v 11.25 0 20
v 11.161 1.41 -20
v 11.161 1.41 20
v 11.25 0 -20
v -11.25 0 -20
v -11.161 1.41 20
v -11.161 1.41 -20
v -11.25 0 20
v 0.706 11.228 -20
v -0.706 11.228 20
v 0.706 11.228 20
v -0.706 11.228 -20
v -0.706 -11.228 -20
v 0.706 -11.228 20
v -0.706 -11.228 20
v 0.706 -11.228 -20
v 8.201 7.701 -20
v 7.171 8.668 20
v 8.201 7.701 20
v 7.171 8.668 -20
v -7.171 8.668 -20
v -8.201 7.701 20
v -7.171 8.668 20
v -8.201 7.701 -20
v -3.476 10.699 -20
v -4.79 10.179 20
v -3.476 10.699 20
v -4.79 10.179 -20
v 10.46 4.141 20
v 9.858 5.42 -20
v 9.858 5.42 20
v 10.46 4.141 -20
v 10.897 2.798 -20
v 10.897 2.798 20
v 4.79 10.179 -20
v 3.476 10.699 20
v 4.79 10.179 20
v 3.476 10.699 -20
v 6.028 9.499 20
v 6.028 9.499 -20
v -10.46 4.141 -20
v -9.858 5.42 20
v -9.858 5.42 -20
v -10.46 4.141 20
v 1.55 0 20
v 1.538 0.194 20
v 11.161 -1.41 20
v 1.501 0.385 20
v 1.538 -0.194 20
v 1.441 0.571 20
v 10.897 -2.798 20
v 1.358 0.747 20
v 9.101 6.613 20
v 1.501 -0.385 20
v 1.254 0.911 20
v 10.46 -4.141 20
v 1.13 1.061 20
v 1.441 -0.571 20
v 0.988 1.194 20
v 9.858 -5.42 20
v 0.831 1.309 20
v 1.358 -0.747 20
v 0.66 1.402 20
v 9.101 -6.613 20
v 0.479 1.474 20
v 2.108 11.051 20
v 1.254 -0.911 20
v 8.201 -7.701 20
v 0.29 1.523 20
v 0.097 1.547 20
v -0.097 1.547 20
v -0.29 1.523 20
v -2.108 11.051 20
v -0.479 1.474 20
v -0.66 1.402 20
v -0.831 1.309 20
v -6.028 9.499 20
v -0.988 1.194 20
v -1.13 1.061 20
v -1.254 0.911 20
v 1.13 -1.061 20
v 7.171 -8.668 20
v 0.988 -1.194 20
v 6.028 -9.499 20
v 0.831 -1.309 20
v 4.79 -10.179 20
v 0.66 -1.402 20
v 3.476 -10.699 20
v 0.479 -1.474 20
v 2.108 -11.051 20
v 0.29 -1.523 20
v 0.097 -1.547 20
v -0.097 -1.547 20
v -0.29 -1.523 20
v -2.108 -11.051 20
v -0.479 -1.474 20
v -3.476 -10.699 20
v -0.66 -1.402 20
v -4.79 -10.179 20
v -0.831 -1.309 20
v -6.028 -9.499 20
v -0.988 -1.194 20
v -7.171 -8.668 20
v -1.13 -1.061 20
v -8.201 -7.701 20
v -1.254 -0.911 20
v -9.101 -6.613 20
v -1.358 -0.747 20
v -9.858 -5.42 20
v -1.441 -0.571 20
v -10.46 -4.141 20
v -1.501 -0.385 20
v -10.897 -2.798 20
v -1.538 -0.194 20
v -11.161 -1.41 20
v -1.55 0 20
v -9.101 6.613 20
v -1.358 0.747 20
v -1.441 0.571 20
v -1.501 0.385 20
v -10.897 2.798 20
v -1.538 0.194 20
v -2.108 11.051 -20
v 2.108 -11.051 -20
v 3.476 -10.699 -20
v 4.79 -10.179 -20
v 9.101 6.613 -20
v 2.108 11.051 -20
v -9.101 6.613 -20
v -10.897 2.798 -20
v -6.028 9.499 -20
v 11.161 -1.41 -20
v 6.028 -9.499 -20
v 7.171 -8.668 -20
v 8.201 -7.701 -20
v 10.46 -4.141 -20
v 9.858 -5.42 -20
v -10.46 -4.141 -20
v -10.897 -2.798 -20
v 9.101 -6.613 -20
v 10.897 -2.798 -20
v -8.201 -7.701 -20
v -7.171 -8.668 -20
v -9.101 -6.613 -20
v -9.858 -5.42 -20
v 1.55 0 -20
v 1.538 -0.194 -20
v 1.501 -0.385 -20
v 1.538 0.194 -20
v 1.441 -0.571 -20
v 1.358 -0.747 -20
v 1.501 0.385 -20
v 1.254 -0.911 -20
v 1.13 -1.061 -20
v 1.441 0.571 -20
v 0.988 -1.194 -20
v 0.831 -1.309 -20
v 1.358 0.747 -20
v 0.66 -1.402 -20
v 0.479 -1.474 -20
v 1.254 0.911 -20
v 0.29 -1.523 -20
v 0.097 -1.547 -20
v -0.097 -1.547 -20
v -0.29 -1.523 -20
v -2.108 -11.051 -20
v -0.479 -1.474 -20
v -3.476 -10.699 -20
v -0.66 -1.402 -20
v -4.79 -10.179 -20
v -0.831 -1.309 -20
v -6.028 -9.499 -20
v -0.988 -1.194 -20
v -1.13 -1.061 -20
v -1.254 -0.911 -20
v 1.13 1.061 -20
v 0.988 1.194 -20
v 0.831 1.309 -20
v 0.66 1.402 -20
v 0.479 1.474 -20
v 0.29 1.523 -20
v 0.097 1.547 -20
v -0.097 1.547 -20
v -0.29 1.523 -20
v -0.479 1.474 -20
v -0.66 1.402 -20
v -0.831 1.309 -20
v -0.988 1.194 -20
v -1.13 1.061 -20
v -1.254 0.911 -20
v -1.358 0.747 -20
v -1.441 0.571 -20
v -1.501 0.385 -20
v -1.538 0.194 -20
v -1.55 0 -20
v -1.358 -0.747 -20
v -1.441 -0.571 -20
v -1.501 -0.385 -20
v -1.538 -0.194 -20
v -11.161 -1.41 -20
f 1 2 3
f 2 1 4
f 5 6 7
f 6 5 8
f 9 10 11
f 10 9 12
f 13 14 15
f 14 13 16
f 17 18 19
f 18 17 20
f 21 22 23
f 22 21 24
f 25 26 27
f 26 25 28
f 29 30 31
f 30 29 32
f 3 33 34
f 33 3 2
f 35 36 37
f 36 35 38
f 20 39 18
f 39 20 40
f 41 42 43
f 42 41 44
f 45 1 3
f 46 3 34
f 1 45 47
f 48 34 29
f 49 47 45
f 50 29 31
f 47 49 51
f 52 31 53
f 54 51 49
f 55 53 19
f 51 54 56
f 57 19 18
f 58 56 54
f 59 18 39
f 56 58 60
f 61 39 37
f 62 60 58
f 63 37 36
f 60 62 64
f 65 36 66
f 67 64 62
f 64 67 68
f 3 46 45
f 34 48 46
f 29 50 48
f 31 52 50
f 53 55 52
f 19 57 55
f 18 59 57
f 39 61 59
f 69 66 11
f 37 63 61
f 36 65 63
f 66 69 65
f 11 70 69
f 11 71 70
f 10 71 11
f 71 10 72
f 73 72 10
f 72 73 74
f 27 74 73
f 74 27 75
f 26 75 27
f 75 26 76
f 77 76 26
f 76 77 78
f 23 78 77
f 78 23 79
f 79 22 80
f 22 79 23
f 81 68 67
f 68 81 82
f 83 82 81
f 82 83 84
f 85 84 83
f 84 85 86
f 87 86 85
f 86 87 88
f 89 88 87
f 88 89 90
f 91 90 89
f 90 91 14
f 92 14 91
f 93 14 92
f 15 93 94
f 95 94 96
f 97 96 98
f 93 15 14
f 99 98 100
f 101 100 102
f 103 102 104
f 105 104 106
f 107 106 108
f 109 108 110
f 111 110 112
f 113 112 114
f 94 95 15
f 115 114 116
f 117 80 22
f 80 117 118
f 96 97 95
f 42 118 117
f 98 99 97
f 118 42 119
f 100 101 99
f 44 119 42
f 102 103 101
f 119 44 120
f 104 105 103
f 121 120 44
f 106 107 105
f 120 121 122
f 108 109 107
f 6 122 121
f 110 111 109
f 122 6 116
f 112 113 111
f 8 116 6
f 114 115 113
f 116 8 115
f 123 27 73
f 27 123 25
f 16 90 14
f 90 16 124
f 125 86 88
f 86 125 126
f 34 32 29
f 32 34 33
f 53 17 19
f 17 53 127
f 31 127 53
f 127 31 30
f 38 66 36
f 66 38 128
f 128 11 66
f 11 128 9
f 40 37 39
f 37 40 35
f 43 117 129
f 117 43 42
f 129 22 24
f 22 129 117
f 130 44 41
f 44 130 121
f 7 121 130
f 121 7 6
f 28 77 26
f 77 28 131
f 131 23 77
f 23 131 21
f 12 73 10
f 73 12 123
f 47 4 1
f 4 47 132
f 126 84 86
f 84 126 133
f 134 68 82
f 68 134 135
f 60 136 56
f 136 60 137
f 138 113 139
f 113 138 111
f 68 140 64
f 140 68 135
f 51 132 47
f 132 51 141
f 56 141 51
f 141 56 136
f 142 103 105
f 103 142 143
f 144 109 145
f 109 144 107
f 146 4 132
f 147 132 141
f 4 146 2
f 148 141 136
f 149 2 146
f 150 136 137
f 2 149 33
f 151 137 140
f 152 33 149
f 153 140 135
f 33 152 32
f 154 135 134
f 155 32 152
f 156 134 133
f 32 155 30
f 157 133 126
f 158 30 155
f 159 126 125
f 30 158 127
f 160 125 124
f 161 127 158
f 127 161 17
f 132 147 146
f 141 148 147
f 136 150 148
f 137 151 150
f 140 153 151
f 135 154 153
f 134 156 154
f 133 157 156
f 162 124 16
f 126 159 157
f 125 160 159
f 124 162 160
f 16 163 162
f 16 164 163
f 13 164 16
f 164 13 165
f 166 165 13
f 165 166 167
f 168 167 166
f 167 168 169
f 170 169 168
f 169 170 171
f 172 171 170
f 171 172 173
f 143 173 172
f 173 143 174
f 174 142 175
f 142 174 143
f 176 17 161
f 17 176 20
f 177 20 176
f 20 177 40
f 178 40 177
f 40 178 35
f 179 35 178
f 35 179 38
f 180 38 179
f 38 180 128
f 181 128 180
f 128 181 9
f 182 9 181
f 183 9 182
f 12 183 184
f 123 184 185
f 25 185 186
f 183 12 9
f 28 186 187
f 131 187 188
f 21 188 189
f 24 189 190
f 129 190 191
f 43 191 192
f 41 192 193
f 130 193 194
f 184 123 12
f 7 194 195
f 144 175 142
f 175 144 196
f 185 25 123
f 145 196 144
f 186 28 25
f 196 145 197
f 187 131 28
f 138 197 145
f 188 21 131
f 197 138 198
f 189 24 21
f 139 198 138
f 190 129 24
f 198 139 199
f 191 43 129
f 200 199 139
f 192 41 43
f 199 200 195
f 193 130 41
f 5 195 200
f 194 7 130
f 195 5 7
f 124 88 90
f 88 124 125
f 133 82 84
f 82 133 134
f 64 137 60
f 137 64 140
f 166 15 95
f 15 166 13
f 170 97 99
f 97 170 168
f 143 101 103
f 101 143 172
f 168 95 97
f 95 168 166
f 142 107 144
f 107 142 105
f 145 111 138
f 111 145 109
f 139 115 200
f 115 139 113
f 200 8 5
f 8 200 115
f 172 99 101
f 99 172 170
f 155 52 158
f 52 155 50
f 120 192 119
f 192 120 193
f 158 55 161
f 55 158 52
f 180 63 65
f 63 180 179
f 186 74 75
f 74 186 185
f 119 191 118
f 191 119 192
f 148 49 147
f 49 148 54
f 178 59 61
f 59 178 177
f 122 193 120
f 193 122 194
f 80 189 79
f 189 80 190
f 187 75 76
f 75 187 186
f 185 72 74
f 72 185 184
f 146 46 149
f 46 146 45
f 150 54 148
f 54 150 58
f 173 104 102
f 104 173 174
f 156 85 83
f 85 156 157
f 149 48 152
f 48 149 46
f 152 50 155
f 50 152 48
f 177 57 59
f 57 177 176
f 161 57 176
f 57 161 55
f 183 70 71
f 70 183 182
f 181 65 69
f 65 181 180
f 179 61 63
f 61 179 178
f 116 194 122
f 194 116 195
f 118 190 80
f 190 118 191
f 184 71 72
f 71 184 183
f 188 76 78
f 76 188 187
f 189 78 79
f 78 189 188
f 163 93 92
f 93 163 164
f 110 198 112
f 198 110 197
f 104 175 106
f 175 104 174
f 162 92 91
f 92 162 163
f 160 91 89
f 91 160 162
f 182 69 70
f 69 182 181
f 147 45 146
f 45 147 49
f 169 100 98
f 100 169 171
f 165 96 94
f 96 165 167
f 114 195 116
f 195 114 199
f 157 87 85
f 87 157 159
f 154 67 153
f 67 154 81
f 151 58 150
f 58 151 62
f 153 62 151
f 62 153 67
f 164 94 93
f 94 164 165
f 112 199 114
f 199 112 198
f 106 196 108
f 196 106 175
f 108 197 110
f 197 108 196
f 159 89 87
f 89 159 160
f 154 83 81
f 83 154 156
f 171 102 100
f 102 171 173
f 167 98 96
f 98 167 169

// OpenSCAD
$fn = 50;


difference() {
	union() {
		translate(v = [0, 0, -20.0000000000]) {
			cylinder(h = 40, r = 11.2500000000);
		}
	}
	union() {
		translate(v = [0, 0, -100.0000000000]) {
			cylinder(h = 200, r = 1.5500000000);
		}
	}
}
